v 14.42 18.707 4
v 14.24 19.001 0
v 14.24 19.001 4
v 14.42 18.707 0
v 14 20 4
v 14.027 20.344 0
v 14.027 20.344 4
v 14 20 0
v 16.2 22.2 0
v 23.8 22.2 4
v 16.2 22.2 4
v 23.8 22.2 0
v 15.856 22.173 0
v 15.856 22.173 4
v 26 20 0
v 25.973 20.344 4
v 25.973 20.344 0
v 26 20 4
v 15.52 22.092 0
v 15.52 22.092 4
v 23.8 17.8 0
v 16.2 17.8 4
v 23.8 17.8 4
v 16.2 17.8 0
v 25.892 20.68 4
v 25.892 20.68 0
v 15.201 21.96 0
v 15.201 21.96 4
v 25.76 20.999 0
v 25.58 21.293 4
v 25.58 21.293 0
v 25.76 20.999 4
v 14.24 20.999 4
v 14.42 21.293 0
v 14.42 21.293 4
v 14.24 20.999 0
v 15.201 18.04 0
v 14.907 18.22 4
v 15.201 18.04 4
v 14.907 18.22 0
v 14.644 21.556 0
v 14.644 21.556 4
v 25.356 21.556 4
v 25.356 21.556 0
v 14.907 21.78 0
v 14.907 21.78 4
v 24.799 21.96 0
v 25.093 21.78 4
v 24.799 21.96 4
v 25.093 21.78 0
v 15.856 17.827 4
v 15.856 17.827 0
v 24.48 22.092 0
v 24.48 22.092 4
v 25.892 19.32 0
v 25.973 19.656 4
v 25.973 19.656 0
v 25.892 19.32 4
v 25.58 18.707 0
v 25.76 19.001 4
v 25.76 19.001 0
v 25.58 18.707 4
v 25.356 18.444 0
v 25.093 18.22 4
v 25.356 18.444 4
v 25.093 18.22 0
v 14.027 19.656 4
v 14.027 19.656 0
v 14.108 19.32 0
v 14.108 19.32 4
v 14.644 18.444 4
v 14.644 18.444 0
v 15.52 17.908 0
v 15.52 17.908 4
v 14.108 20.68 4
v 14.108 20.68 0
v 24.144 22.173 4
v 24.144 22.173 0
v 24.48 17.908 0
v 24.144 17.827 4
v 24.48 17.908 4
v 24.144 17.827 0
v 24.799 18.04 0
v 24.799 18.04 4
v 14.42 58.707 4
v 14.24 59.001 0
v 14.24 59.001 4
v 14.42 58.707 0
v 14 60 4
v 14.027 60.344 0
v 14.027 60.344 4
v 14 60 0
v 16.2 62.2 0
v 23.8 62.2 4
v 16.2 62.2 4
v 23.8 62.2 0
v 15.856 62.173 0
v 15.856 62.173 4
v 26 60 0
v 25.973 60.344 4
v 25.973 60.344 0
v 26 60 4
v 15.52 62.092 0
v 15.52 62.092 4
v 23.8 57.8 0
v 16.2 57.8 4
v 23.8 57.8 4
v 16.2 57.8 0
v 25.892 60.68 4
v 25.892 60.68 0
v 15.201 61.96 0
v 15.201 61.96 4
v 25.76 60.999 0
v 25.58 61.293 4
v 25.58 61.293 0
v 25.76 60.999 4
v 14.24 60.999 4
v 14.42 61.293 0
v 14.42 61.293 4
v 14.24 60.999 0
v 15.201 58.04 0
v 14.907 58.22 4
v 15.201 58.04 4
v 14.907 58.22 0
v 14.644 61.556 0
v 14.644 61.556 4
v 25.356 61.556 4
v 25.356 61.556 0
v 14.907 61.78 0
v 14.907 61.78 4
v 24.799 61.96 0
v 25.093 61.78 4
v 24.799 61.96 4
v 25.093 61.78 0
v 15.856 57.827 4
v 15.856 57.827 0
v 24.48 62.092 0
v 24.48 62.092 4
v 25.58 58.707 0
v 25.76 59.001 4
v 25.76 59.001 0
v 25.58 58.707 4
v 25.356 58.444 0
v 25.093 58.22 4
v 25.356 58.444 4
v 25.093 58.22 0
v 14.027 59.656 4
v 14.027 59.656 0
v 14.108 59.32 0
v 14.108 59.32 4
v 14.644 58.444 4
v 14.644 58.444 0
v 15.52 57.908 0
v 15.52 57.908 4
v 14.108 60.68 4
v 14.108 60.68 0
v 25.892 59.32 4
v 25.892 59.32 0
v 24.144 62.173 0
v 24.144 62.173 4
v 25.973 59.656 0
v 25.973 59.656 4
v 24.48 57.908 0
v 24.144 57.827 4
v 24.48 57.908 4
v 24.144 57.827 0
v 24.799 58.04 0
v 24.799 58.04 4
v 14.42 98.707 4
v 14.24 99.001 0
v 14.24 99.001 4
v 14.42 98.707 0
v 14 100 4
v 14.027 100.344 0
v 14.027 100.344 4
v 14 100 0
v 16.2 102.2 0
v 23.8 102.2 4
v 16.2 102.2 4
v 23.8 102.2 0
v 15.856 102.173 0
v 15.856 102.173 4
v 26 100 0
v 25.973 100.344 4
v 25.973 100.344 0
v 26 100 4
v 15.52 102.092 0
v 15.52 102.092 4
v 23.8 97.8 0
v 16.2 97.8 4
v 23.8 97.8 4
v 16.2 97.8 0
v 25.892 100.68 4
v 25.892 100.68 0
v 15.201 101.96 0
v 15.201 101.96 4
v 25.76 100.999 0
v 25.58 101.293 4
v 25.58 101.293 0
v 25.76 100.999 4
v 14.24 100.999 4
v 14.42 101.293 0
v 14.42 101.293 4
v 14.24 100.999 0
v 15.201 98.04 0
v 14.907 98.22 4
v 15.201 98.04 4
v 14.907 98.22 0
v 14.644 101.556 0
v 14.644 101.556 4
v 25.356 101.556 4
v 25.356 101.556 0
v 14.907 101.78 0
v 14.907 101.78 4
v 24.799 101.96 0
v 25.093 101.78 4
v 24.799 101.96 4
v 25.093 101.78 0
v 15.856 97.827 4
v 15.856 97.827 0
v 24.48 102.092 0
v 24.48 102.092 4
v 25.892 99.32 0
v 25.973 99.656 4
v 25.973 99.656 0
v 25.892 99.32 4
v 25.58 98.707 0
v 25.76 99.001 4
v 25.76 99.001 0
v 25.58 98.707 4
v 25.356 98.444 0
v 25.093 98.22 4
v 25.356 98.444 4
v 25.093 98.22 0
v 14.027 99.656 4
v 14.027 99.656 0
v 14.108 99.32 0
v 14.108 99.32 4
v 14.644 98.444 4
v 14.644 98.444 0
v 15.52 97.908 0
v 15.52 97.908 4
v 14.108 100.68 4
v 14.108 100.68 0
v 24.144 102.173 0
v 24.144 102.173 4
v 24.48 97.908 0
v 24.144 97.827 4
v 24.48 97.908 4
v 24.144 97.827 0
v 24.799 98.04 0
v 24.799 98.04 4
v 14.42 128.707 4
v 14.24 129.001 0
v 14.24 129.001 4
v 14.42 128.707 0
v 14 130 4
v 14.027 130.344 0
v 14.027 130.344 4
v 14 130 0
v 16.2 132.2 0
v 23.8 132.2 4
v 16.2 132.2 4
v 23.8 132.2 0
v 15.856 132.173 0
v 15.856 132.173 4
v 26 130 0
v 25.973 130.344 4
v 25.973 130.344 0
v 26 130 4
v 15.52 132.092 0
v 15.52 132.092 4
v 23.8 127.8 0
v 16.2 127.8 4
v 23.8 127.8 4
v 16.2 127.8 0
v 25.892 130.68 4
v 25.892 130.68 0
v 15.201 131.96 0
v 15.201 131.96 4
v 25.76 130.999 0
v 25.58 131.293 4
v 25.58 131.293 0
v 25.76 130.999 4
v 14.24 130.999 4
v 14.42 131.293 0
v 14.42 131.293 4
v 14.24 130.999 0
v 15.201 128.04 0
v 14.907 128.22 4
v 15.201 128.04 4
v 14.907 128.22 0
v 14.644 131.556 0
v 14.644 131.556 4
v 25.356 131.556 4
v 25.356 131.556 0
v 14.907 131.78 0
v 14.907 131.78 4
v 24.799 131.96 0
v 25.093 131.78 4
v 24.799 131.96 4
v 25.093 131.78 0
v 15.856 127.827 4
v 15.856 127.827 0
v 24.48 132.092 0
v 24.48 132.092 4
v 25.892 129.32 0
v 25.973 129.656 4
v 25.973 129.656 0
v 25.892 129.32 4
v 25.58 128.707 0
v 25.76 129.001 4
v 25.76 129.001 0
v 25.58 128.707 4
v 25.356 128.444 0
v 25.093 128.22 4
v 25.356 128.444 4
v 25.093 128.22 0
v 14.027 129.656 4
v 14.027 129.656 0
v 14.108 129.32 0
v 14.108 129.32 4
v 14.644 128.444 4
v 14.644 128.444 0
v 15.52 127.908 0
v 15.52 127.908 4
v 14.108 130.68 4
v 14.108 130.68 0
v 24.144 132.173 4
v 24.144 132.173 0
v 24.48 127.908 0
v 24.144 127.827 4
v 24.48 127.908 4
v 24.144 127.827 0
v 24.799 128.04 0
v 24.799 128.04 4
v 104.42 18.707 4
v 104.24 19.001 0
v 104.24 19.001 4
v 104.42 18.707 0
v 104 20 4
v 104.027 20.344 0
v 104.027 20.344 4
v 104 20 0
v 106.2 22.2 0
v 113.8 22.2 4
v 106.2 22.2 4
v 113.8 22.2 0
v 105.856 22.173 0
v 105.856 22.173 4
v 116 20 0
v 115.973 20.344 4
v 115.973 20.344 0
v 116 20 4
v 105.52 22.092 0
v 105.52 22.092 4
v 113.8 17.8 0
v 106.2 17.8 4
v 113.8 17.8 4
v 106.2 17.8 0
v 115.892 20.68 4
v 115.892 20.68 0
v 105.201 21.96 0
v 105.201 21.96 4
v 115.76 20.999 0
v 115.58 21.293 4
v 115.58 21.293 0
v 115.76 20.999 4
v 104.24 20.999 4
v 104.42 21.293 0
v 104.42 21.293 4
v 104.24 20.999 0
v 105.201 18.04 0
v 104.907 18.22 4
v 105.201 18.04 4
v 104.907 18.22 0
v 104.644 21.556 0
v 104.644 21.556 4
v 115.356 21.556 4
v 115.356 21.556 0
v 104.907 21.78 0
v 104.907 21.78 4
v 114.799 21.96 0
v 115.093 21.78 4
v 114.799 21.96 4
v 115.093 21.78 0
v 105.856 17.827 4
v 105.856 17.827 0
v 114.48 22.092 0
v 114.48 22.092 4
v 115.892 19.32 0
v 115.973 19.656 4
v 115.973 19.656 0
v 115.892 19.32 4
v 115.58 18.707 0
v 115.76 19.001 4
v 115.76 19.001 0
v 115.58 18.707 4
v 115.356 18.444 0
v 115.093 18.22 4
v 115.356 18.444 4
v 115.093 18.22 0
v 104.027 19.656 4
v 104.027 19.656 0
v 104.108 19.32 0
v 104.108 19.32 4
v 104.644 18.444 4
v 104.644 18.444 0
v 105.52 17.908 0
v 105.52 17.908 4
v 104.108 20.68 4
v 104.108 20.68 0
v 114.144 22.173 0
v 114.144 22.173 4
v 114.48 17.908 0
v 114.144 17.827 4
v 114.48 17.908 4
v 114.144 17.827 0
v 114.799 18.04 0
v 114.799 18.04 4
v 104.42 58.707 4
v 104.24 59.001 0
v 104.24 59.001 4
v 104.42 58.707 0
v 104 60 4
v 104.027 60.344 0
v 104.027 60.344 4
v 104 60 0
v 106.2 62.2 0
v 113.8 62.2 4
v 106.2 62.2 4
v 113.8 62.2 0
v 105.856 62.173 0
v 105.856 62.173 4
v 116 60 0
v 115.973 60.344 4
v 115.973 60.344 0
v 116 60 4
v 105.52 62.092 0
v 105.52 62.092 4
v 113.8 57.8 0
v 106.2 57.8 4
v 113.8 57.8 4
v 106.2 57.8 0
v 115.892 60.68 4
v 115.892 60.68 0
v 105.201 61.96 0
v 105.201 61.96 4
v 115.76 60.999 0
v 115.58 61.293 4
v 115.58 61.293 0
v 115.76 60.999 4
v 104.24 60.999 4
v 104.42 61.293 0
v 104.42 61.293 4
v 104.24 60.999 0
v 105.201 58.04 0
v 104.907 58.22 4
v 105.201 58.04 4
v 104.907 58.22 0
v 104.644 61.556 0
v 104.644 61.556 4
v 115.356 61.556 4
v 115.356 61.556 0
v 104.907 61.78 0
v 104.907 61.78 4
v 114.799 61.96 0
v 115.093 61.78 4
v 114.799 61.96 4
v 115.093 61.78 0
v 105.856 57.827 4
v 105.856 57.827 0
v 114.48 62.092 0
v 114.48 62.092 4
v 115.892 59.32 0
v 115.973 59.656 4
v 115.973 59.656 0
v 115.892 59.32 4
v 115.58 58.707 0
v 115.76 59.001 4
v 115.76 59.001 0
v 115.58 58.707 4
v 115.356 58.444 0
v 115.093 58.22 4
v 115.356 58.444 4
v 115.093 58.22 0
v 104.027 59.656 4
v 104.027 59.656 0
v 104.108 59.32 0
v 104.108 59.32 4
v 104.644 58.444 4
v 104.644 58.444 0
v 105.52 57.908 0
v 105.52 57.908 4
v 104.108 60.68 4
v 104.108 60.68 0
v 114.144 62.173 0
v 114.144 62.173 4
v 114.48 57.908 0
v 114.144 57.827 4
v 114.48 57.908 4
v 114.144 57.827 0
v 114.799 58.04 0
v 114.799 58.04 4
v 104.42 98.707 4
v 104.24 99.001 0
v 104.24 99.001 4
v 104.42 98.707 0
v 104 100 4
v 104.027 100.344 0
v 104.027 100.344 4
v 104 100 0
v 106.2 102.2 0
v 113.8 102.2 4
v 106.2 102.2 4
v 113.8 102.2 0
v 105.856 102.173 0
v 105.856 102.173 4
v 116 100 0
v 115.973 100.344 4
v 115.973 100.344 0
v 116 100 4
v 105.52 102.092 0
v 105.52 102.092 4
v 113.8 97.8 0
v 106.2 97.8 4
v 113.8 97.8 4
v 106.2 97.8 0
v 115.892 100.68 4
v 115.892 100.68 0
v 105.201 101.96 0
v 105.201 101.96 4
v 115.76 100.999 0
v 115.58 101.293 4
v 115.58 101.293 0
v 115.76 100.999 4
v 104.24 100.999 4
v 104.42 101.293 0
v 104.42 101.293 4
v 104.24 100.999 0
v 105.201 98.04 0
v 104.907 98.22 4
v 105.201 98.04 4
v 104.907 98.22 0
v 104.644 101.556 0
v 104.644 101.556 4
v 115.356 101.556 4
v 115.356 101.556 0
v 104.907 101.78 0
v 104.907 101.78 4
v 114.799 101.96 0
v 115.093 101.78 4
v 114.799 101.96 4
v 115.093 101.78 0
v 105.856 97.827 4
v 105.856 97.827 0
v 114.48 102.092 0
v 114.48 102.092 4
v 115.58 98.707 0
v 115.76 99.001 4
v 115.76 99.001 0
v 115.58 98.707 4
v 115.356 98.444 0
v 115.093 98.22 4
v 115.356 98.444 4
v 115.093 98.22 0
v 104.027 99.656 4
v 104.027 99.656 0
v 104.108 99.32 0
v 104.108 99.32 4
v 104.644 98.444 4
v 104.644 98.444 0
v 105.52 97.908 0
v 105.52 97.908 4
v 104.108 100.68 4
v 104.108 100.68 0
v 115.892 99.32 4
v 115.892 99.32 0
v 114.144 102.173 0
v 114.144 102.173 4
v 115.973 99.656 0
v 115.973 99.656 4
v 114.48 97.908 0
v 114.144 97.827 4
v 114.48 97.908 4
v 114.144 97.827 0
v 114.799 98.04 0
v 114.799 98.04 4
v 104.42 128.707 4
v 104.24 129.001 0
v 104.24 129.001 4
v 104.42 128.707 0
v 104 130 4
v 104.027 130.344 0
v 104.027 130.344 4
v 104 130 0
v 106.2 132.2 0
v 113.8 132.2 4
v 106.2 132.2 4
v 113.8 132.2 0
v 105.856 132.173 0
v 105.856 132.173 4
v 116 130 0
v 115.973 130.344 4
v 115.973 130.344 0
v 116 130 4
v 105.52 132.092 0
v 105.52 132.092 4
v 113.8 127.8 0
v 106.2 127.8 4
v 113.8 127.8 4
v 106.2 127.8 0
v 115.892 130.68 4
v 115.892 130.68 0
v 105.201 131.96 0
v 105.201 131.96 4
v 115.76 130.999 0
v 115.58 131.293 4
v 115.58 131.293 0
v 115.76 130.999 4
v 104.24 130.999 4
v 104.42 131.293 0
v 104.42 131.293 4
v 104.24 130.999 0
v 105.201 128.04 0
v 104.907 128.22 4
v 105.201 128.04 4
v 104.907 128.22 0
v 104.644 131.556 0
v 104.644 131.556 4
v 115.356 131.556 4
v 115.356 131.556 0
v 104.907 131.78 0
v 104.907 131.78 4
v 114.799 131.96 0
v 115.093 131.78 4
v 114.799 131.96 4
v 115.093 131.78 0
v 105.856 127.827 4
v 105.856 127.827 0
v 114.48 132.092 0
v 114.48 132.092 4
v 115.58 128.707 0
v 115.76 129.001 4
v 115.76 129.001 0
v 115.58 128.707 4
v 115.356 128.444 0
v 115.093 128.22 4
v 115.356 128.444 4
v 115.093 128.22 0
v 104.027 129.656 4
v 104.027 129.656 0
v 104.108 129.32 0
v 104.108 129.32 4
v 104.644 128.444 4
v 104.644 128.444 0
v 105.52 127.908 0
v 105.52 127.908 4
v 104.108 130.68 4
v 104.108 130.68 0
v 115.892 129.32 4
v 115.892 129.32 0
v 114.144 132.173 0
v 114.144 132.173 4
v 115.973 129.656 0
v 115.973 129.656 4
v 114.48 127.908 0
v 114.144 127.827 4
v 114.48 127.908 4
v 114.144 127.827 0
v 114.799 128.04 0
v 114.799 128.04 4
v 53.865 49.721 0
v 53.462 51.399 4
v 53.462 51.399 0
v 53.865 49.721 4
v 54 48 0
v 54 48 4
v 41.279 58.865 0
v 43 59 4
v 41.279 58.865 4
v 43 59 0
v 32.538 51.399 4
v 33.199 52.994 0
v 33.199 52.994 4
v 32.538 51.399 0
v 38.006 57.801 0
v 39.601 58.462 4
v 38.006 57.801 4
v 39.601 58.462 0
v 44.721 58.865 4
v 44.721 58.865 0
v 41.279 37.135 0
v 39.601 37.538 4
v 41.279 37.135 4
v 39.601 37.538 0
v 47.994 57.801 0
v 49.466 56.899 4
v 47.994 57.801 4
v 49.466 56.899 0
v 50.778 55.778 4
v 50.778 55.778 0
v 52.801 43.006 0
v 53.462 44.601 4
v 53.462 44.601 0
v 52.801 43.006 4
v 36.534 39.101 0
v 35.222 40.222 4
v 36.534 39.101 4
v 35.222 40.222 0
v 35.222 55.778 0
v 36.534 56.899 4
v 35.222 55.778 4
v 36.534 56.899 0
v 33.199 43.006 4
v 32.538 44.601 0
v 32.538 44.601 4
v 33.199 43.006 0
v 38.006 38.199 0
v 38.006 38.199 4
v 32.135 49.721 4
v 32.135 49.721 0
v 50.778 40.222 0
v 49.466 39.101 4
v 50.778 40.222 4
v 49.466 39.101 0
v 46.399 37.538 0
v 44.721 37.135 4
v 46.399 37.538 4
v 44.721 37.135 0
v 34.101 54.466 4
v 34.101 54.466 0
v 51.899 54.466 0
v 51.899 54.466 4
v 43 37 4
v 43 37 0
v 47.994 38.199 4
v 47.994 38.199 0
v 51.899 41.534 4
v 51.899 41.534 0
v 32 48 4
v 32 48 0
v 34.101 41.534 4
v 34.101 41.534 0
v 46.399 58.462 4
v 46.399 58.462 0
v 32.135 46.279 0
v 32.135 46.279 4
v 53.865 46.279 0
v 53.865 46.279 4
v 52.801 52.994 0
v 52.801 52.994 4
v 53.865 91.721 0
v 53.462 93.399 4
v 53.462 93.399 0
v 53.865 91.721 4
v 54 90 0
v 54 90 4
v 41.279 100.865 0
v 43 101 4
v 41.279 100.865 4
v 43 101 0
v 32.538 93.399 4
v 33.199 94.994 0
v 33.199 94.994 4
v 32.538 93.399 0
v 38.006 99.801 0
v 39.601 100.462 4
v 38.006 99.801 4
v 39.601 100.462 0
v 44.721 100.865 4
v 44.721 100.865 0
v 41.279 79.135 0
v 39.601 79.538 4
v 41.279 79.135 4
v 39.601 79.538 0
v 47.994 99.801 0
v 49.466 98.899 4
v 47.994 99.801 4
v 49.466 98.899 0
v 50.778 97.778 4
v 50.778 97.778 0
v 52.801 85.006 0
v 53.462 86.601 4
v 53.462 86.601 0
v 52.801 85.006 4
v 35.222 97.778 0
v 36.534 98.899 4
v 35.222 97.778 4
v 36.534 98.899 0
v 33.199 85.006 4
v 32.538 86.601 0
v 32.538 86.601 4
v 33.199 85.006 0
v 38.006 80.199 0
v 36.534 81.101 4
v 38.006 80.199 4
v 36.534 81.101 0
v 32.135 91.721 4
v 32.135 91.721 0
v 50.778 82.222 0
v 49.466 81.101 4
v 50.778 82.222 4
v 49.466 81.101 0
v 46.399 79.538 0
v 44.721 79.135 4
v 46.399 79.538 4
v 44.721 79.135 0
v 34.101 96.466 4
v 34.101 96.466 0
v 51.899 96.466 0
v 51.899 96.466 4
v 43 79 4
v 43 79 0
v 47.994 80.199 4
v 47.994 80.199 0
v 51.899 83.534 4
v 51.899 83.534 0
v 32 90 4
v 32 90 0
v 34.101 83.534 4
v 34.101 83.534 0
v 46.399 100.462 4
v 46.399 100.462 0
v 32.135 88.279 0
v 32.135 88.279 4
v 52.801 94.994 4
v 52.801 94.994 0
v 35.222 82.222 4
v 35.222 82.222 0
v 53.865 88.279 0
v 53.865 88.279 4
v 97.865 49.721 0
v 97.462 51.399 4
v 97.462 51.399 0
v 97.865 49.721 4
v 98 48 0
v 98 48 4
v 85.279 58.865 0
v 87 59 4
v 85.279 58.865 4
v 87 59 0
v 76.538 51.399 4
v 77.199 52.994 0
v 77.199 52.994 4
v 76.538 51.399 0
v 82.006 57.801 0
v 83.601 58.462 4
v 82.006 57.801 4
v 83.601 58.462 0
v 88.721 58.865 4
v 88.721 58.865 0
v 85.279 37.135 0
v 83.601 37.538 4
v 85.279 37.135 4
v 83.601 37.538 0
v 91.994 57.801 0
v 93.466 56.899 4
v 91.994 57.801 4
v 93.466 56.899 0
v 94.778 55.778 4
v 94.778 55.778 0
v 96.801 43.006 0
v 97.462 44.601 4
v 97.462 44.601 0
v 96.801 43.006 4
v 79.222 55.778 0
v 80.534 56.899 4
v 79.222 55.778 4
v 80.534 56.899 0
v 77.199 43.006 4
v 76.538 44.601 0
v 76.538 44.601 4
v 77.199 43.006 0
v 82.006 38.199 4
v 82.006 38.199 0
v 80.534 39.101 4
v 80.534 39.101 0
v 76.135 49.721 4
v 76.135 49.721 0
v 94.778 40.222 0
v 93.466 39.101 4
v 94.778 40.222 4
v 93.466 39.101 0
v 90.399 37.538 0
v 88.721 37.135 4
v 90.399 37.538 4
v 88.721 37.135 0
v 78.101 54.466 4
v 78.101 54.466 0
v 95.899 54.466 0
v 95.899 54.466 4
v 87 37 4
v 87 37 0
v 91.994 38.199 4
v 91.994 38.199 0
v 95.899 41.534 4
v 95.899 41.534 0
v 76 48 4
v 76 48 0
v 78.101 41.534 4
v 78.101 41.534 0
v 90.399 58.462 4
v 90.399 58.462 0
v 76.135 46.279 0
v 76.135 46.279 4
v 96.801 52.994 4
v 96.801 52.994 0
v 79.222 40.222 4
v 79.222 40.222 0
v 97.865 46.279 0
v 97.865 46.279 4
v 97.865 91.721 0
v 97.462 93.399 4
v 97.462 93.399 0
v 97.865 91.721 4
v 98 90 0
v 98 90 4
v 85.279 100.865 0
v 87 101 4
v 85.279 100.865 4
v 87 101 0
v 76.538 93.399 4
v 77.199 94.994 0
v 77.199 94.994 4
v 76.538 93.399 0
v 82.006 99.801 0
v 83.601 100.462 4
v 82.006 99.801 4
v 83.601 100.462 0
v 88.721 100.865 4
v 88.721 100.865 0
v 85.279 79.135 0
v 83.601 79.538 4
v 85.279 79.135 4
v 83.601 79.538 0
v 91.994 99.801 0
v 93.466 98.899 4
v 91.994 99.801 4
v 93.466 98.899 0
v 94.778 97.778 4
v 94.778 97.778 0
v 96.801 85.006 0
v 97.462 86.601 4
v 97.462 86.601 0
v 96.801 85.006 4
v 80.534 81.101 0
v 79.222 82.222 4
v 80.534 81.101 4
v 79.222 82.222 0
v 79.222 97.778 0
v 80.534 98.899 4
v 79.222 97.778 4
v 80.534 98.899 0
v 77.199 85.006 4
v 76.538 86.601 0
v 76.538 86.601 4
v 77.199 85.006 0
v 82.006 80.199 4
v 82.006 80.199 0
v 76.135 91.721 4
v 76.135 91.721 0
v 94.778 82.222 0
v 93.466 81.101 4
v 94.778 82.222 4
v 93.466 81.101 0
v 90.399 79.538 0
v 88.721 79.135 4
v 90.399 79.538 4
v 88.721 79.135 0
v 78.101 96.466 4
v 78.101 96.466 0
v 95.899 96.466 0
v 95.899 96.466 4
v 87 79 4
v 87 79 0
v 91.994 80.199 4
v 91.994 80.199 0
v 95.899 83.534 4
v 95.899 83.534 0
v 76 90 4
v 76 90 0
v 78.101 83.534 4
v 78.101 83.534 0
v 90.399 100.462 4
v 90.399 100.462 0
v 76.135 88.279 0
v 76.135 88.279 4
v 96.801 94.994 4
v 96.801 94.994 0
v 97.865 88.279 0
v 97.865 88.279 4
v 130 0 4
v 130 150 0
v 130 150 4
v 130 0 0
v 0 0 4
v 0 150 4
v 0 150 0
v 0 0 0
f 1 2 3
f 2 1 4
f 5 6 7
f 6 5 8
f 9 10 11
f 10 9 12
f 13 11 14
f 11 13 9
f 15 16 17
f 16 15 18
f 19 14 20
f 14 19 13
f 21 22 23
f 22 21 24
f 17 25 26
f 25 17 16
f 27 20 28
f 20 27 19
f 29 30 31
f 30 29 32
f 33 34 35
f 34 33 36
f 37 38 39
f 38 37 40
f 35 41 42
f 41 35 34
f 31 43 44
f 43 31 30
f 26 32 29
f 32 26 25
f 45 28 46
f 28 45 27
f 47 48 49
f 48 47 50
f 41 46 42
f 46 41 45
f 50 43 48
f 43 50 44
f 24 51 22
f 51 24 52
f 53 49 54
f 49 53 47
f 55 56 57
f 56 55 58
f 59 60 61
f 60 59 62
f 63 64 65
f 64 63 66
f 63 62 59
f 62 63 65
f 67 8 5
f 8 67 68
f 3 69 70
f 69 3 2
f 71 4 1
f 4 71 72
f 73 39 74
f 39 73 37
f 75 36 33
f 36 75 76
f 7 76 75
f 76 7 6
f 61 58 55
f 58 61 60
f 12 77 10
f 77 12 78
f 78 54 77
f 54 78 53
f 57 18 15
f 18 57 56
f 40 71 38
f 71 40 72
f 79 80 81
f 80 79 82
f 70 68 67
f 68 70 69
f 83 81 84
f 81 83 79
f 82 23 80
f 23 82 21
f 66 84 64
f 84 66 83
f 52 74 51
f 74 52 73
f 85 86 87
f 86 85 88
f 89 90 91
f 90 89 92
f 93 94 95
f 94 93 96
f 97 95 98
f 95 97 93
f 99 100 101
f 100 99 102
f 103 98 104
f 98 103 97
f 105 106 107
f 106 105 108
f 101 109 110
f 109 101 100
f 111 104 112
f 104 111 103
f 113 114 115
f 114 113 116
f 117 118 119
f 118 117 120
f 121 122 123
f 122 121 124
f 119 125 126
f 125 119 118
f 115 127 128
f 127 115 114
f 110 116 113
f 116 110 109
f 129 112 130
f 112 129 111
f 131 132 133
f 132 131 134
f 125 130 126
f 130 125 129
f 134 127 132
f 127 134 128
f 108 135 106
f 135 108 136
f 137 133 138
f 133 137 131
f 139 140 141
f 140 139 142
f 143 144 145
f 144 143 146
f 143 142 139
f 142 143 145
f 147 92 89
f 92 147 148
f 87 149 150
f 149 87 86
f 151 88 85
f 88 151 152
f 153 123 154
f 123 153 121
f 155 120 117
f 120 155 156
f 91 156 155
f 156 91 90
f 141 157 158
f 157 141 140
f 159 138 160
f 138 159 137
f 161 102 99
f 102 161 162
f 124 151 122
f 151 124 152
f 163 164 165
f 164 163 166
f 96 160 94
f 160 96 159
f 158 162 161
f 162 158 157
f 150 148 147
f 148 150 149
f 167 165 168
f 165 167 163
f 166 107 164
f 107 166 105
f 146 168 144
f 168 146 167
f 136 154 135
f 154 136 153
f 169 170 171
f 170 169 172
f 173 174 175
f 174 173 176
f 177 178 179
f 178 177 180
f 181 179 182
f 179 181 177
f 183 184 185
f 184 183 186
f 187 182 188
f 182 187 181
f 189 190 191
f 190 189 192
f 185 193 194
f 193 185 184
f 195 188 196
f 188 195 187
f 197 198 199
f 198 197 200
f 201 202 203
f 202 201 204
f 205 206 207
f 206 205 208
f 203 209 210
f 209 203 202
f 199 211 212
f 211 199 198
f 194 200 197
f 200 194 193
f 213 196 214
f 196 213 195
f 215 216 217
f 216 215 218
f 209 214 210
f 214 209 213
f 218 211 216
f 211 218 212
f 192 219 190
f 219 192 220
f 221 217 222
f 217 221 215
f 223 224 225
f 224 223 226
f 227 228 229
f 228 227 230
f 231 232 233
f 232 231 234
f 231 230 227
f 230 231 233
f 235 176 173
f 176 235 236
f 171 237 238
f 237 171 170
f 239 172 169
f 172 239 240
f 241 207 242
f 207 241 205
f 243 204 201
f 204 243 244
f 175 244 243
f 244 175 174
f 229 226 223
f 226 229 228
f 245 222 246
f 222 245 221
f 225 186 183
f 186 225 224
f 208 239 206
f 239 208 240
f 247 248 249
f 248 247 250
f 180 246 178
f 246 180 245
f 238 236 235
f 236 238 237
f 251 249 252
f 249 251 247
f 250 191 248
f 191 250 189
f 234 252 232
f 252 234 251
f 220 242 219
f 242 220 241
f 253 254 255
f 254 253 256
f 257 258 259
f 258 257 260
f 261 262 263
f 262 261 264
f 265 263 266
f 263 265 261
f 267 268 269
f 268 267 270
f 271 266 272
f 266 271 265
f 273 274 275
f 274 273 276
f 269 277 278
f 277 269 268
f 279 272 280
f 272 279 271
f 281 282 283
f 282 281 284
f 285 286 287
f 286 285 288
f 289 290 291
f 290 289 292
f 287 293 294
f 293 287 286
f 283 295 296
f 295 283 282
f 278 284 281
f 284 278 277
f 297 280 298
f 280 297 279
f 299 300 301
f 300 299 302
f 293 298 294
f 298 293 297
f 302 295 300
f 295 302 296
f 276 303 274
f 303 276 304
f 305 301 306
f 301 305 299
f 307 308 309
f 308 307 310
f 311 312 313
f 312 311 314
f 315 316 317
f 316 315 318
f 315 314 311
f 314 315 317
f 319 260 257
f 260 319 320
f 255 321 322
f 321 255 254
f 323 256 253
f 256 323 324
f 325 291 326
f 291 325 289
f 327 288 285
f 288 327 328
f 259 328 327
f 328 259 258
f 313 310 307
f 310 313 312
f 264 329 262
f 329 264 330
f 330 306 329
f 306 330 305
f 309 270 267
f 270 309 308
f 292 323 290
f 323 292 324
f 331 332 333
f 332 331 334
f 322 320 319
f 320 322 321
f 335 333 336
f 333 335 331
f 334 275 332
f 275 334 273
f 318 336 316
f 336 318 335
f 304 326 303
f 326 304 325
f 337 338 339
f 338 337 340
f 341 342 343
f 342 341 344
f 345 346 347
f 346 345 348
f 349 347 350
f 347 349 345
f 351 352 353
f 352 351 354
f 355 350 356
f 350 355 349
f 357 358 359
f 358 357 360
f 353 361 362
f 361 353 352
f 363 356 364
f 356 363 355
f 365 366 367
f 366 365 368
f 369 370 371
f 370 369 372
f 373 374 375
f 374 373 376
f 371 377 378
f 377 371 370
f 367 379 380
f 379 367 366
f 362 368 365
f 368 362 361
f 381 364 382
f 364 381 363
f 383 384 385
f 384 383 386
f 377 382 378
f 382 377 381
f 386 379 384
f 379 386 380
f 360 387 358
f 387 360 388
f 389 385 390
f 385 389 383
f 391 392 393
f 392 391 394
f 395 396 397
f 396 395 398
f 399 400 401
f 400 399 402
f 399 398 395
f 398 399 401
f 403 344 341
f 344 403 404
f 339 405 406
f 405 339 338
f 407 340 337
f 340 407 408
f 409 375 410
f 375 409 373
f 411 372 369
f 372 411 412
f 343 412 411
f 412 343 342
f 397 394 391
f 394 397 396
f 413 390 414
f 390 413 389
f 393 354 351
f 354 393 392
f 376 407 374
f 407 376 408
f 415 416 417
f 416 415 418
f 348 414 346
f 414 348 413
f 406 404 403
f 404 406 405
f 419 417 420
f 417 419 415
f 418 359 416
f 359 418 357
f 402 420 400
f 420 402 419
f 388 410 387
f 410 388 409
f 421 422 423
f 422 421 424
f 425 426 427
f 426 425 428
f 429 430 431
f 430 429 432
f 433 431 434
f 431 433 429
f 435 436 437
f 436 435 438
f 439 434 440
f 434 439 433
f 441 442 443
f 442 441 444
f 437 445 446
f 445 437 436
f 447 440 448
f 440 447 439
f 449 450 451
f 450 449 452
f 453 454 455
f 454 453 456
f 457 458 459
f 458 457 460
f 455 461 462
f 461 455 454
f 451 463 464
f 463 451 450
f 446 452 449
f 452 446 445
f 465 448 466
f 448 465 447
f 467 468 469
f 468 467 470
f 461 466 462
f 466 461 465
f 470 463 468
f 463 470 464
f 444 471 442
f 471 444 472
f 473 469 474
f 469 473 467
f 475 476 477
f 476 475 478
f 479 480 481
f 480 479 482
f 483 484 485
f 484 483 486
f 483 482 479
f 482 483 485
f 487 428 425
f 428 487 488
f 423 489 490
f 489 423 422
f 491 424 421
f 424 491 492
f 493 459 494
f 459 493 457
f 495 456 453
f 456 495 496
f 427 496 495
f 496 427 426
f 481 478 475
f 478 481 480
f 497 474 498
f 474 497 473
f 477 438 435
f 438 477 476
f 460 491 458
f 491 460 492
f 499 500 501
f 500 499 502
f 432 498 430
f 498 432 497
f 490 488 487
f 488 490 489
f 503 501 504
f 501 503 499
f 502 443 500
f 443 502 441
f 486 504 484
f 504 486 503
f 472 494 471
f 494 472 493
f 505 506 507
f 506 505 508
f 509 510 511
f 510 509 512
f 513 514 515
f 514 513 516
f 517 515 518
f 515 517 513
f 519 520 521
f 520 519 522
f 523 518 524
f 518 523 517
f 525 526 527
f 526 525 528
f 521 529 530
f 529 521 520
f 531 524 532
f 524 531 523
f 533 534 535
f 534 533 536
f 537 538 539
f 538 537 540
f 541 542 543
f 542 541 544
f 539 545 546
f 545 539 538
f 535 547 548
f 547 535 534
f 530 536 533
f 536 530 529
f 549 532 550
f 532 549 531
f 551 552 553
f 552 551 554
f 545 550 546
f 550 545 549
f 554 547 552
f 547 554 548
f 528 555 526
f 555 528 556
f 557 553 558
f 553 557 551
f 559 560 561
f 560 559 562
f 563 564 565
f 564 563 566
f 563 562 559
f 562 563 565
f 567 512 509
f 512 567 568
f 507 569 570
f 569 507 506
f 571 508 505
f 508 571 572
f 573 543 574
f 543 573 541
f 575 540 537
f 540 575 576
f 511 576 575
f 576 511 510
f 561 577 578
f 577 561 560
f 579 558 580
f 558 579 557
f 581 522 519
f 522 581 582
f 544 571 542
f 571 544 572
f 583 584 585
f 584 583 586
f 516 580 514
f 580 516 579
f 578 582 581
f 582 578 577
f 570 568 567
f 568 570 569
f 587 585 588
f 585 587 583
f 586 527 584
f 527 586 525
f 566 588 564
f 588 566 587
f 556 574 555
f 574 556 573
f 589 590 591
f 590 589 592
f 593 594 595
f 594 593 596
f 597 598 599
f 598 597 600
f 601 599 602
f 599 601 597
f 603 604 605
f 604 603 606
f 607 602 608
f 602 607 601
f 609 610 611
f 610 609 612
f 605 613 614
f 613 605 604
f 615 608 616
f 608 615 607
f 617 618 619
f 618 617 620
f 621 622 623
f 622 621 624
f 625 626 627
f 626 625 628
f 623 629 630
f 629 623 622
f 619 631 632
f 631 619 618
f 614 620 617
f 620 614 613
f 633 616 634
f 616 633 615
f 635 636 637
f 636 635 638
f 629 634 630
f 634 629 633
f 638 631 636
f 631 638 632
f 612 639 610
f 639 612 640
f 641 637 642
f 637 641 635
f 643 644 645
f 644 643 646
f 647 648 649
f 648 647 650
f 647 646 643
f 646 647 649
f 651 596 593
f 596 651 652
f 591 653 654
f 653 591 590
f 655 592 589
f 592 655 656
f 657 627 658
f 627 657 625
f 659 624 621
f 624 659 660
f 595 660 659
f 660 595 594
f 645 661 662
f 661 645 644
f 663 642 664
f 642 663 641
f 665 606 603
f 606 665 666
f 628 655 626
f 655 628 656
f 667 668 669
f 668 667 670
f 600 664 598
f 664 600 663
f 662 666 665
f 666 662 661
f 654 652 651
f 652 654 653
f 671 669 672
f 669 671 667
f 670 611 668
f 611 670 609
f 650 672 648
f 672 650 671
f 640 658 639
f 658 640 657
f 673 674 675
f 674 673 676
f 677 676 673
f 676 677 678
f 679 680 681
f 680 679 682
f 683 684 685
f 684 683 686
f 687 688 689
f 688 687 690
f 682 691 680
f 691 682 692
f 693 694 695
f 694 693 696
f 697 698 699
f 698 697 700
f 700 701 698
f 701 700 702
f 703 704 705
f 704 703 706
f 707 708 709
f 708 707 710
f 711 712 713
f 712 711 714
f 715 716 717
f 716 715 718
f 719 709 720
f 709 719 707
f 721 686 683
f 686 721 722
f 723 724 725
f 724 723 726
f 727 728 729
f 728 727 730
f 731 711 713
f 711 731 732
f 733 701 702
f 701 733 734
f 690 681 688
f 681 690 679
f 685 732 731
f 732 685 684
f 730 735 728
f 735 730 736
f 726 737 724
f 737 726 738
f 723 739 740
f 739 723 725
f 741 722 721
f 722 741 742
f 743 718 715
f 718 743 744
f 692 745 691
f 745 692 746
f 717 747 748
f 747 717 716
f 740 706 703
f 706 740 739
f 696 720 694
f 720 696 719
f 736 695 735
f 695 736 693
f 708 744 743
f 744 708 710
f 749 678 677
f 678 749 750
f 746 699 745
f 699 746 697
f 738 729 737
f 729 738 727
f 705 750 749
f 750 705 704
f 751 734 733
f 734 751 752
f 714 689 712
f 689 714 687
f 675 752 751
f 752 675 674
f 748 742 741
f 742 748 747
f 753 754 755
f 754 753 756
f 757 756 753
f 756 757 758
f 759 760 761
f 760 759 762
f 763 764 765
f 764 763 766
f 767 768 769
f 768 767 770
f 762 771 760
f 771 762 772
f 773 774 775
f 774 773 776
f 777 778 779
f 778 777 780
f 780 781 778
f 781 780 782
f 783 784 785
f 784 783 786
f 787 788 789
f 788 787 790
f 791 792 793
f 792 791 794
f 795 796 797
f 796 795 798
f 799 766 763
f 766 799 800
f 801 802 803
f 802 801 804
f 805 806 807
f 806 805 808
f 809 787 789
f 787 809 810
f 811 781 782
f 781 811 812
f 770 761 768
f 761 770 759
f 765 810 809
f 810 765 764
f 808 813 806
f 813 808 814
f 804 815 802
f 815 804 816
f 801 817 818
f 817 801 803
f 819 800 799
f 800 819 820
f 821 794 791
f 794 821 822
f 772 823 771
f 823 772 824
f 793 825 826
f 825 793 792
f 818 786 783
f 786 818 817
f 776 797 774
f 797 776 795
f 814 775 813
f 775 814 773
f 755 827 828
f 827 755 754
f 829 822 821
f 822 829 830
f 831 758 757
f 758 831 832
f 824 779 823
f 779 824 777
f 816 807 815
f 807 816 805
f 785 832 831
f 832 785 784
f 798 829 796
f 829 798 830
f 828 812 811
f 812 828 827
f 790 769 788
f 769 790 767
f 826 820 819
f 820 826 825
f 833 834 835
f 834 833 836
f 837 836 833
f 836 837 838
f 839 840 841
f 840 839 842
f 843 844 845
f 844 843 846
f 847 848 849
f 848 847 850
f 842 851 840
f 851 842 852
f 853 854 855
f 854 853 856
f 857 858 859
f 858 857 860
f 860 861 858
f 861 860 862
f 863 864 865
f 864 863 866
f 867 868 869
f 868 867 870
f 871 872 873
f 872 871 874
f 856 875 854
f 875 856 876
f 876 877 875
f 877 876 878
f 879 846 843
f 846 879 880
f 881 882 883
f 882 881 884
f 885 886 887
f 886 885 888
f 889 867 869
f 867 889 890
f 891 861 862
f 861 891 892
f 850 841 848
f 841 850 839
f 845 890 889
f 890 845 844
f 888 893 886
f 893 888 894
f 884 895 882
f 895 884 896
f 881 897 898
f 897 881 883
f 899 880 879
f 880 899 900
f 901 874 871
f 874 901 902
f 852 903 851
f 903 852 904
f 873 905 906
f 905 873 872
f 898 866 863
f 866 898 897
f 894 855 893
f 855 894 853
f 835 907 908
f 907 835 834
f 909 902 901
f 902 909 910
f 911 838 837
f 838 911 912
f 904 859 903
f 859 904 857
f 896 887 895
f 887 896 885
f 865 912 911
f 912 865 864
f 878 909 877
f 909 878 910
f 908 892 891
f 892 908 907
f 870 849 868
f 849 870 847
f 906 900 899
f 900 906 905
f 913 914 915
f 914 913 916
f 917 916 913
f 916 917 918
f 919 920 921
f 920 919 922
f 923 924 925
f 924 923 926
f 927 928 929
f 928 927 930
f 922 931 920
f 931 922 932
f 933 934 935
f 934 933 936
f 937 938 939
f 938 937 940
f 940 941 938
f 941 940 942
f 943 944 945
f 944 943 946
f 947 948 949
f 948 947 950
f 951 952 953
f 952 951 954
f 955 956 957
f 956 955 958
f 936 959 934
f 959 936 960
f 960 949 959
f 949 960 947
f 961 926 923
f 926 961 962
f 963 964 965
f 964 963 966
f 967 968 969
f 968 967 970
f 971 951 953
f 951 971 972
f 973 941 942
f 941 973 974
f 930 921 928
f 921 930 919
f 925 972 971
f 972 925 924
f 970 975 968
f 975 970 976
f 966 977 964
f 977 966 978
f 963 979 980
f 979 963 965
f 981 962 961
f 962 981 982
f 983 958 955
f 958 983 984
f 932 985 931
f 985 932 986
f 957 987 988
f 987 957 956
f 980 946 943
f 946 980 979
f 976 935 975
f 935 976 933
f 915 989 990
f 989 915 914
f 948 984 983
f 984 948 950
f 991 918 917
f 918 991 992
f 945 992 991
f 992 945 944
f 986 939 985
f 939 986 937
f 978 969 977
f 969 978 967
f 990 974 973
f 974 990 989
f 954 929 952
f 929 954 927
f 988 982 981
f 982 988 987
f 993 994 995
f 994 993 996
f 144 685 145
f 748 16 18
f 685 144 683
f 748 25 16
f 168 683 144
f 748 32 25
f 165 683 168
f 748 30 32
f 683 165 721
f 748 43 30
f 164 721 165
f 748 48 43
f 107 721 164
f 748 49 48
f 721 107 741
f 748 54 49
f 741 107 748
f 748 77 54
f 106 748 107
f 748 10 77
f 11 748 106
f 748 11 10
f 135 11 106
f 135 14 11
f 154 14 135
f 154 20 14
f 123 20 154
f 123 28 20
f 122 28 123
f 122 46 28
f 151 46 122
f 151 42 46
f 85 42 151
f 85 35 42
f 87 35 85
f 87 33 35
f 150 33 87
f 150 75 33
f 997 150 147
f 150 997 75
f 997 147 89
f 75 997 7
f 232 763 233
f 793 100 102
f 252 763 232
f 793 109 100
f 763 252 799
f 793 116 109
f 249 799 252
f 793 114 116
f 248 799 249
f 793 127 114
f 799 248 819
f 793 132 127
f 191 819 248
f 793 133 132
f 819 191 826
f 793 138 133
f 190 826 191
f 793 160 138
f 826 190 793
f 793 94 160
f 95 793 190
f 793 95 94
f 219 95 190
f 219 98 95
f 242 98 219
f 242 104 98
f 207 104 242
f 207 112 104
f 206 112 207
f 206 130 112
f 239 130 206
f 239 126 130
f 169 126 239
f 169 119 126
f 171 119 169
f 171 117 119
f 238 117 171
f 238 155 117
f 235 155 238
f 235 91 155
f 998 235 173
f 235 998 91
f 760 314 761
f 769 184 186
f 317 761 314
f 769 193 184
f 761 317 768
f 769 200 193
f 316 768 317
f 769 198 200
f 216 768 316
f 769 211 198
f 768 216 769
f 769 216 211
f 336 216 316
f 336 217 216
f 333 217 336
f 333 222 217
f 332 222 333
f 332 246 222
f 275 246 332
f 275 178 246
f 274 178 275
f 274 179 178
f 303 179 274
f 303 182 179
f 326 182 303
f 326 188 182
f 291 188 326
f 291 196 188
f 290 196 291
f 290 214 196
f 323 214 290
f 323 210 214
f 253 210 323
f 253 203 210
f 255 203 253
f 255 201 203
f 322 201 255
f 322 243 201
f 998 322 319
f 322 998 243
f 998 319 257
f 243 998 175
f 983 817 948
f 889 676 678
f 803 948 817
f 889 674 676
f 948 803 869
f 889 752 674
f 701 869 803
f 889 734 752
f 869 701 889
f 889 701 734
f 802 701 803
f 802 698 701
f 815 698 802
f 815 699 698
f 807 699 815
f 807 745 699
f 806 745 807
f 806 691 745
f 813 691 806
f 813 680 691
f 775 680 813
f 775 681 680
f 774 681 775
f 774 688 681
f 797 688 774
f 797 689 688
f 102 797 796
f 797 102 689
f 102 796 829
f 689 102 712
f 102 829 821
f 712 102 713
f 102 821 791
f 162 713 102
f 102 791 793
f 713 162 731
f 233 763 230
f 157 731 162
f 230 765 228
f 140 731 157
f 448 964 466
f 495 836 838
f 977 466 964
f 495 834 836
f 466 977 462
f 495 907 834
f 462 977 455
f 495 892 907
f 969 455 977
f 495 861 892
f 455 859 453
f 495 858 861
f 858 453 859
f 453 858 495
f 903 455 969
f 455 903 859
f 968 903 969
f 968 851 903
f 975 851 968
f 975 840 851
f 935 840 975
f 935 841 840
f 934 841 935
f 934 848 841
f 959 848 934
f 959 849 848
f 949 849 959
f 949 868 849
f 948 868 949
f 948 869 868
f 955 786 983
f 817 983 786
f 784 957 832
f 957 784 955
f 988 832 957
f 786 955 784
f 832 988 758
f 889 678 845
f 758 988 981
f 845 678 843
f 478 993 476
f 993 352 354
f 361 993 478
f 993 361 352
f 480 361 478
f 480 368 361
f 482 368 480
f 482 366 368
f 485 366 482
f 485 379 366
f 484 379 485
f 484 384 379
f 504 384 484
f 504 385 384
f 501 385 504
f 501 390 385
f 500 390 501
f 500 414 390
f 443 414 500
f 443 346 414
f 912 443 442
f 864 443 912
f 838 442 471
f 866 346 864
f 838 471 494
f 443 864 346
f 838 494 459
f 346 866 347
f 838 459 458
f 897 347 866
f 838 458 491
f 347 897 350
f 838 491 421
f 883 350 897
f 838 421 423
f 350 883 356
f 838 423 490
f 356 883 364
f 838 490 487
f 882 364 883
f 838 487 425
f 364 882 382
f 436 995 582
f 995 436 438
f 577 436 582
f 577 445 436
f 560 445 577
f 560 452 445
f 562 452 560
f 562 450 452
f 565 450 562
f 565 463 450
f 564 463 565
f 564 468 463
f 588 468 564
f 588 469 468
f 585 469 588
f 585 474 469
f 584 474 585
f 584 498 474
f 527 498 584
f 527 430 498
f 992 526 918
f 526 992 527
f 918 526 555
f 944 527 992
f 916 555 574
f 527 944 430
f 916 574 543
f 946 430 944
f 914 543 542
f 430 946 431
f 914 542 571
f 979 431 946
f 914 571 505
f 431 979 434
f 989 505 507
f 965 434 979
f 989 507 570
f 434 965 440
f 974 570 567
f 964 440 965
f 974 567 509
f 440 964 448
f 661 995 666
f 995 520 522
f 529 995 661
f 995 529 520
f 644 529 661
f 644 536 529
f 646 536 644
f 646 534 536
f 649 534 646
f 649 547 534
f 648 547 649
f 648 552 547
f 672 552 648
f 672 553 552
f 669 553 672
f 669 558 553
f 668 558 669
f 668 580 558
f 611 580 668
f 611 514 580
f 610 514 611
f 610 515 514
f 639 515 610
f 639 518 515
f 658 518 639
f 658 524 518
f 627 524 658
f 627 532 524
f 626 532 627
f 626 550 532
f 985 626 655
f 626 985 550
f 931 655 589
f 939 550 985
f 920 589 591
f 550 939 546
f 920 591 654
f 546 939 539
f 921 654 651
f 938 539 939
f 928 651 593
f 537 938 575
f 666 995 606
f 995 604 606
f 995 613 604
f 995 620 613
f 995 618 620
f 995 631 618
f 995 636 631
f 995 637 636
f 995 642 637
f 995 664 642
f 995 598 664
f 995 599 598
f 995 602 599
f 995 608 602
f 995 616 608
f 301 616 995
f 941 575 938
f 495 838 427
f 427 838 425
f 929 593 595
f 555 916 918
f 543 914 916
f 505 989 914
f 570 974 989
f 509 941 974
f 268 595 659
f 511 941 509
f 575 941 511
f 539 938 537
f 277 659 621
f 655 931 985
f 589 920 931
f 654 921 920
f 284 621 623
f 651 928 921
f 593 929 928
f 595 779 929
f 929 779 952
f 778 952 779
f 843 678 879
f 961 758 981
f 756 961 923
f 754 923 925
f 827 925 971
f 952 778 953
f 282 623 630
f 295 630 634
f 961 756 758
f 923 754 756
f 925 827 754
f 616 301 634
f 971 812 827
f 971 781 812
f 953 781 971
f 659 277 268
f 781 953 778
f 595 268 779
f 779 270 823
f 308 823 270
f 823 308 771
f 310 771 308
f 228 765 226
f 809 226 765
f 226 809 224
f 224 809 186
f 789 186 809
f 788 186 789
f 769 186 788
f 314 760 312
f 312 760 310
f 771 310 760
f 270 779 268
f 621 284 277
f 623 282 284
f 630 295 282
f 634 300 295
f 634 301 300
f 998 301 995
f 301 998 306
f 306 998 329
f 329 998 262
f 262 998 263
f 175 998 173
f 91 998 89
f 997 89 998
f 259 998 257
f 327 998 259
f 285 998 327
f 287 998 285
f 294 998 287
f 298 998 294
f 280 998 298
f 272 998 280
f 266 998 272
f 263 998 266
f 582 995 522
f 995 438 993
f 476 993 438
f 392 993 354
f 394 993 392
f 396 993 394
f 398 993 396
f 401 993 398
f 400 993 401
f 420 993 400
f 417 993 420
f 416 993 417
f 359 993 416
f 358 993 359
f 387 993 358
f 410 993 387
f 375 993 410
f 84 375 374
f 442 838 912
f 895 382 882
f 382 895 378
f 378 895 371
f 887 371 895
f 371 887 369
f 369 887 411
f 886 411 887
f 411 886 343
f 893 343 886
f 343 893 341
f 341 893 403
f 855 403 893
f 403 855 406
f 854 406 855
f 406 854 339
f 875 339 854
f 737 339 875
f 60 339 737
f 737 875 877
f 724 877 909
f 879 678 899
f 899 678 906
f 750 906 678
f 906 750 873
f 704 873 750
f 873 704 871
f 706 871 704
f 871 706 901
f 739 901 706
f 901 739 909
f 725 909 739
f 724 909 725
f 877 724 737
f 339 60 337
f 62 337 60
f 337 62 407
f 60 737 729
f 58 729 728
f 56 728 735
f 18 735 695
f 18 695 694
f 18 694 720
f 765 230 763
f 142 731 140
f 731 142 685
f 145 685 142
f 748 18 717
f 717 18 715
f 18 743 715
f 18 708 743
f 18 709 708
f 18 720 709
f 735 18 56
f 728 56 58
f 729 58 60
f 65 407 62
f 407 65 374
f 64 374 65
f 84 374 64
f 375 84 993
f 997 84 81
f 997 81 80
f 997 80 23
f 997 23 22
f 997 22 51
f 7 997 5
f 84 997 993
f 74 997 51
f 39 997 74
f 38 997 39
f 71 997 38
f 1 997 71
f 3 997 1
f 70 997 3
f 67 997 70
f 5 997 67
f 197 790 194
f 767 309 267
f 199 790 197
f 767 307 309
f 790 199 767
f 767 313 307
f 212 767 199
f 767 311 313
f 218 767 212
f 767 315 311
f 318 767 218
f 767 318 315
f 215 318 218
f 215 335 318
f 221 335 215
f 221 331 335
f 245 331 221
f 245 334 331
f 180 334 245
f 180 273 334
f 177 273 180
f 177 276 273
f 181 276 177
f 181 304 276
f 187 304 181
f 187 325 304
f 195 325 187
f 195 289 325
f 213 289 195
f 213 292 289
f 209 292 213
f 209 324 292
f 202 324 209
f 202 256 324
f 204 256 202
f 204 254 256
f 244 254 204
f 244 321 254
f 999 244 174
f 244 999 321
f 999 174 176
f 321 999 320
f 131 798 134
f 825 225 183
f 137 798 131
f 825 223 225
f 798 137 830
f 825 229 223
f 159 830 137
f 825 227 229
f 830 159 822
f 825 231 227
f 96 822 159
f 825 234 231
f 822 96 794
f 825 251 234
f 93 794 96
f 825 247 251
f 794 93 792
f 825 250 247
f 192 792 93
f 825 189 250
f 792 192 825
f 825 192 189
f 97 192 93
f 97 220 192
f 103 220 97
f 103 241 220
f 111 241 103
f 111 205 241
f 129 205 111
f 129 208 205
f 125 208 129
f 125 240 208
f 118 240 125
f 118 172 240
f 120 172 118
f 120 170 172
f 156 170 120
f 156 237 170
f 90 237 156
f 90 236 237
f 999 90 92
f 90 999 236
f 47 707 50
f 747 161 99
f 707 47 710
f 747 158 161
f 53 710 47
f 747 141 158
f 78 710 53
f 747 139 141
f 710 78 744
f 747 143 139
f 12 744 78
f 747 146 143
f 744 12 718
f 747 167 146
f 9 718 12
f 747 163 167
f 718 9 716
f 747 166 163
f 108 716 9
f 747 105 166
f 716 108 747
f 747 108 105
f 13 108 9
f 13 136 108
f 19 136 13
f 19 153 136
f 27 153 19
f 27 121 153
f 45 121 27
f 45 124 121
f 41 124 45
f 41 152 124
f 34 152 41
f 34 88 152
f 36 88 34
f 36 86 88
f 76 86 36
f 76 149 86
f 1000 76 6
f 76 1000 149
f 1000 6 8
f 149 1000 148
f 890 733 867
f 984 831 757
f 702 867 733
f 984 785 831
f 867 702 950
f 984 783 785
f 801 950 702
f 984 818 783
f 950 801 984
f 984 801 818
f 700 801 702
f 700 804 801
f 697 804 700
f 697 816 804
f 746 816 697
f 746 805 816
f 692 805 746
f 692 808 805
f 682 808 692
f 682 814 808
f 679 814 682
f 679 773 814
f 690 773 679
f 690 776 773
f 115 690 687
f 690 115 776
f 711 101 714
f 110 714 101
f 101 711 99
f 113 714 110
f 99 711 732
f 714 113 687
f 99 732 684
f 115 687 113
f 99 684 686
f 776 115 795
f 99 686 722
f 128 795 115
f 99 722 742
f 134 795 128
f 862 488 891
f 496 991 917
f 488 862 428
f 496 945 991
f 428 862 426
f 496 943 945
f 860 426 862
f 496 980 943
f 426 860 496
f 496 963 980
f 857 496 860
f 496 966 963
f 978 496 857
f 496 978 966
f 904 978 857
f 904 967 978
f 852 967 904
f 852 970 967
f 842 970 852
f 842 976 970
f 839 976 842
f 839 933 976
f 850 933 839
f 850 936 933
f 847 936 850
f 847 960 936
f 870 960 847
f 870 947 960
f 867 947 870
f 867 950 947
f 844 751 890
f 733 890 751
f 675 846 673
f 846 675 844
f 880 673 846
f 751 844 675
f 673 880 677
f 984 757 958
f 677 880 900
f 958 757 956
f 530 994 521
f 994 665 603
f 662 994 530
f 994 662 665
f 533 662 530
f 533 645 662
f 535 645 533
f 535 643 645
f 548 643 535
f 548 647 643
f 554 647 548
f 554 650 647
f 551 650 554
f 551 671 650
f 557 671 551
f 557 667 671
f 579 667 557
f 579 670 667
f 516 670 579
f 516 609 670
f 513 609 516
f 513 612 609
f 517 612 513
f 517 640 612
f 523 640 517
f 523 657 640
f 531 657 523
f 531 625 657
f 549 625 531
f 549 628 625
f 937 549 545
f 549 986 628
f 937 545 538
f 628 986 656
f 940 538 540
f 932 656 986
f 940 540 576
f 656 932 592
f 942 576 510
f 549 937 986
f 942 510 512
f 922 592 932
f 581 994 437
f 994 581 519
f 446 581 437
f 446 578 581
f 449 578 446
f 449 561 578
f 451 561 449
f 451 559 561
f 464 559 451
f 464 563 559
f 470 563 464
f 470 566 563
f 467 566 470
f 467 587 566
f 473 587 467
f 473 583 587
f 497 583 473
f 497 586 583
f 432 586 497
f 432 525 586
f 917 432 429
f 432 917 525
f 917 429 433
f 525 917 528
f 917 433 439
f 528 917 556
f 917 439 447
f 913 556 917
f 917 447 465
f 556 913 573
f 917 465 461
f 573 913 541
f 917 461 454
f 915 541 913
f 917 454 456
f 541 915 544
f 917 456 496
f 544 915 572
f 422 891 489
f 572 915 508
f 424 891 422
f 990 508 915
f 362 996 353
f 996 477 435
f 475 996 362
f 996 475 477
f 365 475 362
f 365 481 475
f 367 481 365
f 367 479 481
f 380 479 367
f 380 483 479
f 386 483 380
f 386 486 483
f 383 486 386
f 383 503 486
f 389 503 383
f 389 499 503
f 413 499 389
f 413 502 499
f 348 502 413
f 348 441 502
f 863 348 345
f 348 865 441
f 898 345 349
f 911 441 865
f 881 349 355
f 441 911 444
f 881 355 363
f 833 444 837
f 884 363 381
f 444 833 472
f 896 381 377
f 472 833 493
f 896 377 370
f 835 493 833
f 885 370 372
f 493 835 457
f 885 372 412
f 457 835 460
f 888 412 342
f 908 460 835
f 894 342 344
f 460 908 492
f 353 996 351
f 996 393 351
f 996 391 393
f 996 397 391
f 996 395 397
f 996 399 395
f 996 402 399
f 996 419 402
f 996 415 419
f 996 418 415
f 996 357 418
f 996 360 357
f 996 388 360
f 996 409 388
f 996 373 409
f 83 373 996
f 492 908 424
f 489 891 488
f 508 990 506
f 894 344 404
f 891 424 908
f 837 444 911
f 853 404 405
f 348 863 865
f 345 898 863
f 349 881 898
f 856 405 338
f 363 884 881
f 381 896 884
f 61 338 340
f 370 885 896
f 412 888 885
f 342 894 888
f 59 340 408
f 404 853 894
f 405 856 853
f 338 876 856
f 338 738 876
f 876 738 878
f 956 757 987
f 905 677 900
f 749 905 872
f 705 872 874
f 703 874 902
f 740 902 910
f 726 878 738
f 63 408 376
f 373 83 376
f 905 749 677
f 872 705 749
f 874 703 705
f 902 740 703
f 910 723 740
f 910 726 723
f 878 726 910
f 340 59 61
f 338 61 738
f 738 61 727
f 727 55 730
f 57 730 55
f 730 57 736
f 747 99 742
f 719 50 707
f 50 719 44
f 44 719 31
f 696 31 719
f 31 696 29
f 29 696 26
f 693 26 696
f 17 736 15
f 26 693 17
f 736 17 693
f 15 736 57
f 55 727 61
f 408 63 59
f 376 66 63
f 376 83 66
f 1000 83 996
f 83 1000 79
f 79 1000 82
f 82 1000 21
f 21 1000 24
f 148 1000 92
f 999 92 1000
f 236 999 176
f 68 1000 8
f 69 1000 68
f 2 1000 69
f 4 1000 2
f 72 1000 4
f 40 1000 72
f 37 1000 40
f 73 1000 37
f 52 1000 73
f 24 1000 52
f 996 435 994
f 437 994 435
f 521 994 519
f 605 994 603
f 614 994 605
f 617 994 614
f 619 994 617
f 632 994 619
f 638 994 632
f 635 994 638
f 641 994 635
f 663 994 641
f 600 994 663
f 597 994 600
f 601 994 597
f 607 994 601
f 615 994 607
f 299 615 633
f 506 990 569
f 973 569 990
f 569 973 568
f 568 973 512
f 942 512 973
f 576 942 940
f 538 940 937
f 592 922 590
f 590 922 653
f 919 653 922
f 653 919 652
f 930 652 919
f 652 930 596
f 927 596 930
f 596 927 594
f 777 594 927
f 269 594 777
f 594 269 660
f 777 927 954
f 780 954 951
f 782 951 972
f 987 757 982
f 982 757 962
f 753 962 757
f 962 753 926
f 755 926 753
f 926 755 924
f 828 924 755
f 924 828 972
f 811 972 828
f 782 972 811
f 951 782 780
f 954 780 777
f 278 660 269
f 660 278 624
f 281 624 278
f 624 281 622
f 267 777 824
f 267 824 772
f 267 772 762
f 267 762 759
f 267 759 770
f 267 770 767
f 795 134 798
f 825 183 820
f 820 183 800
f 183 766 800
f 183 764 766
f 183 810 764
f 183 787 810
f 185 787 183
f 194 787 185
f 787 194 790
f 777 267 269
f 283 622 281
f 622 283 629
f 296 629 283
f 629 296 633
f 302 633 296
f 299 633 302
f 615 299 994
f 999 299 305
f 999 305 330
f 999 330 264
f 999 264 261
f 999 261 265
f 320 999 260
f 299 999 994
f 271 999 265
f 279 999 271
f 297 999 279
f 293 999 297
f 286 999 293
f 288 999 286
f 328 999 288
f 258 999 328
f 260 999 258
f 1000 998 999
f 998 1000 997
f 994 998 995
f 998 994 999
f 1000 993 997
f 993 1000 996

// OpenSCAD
/* TAM THAN DUOI MAU, MAU THU LAP DAT KHONG CHIU LUC. Don vi mm.
 * Khong co lo gan motor/truc; phai thiet ke lai khi co ban ve motor va goi do.
 * Tam tren + duoi chong 40 mm, khe x=20/110, y=130 tuong ung y=20 tam tren.
 */
$fn=40;
w=130; h=150; t=4;
module slot(x,y,len=12,d=4.4){translate([x,y,-.1])linear_extrude(height=t+.2) hull(){translate([-(len-d)/2,0])circle(d=d);translate([(len-d)/2,0])circle(d=d);}}
difference(){
 cube([w,h,t]);
 for(x=[20,110],y=[20,60,100,130])slot(x,y);
 for(x=[43,87],y=[48,90]) translate([x,y,-.1])cylinder(h=t+.2,d=22);
}
